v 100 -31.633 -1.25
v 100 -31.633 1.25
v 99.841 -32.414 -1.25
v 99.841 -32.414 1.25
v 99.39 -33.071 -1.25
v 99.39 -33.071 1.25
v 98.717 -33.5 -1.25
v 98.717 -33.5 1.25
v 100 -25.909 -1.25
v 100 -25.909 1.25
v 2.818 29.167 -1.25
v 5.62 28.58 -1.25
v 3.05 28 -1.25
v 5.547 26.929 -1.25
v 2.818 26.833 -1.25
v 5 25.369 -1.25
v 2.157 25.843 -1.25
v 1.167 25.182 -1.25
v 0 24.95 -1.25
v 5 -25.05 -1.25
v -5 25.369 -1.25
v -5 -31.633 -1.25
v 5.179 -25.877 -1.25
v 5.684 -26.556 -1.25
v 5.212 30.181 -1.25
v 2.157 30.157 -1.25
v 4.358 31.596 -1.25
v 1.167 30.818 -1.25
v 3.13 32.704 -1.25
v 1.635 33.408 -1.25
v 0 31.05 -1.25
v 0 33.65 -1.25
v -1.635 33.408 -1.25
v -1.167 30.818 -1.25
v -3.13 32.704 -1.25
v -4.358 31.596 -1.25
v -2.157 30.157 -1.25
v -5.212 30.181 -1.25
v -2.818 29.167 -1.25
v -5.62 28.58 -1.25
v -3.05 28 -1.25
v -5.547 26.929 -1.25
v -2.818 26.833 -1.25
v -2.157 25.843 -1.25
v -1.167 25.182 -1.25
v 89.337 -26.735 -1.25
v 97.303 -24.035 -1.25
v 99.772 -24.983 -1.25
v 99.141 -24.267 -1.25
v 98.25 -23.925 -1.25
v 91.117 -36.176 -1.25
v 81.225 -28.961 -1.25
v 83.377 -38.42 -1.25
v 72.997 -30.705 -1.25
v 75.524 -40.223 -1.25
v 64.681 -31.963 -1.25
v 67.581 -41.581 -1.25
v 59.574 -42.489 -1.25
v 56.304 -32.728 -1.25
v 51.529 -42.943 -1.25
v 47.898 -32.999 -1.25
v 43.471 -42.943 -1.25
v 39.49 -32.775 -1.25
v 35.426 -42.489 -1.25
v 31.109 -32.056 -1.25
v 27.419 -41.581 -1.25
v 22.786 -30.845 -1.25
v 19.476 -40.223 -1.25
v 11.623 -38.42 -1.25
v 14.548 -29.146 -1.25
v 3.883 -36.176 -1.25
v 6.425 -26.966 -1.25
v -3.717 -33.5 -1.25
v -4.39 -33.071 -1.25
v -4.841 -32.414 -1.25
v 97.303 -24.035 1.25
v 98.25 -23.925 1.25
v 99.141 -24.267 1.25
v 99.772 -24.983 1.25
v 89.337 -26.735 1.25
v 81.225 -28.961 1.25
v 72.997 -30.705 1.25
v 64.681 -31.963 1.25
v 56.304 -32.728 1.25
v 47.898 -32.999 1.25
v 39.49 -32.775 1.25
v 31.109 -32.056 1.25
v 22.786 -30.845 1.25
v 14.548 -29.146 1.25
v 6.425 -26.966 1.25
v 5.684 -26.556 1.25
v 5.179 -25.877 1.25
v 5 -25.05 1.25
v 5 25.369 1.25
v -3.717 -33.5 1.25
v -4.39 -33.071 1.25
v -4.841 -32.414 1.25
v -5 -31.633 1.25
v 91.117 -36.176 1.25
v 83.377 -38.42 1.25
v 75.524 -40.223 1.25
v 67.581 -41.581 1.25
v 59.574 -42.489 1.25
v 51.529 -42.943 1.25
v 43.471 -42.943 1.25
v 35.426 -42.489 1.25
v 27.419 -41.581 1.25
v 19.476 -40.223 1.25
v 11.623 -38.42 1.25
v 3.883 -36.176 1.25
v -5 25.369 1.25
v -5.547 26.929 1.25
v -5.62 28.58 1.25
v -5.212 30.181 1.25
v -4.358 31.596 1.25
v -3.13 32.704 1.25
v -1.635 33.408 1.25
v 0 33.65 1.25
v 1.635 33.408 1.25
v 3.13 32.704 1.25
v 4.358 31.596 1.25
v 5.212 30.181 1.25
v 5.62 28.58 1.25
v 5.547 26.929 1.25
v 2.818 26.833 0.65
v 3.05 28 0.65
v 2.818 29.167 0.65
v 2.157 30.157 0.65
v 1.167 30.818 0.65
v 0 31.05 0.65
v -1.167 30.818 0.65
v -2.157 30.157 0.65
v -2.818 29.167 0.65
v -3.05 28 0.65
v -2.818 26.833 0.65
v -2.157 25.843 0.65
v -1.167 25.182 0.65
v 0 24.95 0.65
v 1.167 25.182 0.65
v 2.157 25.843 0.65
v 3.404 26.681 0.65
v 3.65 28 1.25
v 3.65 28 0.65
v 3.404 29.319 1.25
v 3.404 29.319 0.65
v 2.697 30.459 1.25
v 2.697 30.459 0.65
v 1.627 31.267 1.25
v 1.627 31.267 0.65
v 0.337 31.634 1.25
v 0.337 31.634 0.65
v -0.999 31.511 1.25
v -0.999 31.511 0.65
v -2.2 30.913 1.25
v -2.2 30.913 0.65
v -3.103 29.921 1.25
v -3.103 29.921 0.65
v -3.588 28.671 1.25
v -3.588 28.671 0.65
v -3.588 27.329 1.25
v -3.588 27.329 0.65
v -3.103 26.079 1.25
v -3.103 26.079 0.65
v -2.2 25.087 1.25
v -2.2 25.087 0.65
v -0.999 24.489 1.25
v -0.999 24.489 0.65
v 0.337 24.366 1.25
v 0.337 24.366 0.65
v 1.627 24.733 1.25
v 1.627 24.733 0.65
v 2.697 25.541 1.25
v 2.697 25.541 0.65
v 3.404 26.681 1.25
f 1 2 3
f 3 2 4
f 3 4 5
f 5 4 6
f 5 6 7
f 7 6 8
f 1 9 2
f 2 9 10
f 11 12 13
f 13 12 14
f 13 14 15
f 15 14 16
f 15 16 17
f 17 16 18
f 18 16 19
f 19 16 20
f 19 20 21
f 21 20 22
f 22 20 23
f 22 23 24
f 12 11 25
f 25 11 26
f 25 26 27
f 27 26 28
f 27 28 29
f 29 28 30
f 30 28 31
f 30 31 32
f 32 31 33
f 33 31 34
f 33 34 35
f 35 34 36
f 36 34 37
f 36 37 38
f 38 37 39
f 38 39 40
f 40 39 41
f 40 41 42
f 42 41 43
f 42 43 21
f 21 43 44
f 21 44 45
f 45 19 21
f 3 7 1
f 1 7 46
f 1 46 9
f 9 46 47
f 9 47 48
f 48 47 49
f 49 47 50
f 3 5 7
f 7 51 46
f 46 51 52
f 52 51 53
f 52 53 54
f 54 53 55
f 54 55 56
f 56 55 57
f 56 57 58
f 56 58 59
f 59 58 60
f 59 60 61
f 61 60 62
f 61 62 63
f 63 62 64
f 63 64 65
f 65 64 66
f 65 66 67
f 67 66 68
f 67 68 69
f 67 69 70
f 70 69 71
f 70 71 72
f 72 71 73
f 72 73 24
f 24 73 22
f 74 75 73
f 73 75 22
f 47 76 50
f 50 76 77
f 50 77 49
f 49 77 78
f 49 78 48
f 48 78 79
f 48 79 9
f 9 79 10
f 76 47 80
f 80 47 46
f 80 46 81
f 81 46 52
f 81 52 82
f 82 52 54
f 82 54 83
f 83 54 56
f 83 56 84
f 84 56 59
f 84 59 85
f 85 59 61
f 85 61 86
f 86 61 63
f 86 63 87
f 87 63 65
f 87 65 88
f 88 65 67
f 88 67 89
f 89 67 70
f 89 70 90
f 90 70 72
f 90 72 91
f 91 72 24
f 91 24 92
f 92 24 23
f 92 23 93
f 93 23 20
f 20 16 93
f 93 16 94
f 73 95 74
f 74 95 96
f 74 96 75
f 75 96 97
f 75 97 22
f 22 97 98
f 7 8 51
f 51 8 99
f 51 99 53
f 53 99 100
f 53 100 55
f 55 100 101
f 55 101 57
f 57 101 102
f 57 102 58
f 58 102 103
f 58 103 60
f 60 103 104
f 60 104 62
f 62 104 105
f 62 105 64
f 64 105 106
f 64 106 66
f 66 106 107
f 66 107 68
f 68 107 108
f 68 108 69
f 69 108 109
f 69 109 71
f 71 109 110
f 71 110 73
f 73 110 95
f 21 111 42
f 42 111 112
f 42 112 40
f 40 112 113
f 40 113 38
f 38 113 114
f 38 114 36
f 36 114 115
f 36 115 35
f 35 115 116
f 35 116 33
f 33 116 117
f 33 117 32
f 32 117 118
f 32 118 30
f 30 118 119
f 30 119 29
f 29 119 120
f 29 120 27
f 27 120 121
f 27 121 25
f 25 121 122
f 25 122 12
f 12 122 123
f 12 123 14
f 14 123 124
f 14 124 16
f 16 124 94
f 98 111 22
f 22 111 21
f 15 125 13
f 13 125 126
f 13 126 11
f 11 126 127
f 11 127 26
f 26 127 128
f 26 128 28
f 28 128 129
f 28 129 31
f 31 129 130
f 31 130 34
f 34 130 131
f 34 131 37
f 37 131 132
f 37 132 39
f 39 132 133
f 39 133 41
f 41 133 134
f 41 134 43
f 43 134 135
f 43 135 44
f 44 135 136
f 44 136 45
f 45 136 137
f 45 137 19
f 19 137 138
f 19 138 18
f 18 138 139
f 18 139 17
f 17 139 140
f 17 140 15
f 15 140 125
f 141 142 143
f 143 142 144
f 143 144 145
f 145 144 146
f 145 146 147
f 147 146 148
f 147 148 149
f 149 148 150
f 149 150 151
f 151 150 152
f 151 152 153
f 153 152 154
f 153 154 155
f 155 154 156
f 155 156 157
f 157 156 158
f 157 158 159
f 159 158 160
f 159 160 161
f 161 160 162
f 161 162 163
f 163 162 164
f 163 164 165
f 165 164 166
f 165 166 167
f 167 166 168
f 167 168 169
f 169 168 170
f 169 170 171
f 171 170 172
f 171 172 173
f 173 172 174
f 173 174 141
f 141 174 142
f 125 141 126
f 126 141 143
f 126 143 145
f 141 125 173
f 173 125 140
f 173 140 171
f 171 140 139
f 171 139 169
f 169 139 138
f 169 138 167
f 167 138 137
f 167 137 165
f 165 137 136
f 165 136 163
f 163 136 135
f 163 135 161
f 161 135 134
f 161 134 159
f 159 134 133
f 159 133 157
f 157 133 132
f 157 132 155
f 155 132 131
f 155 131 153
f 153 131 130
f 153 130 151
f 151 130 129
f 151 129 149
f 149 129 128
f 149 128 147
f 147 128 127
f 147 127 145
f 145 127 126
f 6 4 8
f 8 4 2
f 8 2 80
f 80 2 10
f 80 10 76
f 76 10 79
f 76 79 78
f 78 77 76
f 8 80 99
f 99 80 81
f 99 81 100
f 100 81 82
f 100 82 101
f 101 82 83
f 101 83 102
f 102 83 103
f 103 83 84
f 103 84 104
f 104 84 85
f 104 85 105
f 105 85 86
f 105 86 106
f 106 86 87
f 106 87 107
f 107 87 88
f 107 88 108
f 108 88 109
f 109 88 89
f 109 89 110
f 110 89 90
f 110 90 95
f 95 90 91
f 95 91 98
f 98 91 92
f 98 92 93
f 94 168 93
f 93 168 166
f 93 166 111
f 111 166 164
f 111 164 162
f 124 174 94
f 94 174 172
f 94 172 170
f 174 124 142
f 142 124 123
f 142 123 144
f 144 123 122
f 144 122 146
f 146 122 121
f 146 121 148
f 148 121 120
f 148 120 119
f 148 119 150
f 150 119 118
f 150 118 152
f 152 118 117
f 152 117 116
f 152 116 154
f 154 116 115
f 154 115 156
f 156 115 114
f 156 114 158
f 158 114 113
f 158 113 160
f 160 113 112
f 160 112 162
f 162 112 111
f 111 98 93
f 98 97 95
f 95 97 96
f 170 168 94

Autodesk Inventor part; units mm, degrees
ref_plane "YZ Plane" through (0, 0, 0) normal (1, 0, 0) x (0, 1, 0)
ref_plane "XZ Plane" through (0, 0, 0) normal (0, 1, 0) x (-1, 0, 0)
ref_plane "XY Plane" through (0, 0, 0) normal (0, 0, 1) x (1, 0, 0)
sketch "スケッチ1" plane through (0, 0, 0) normal (0, 0, 1) x (1, 0, 0)
  line L0 (-5, -33) -> (5, -33)
  line L1 (5, -33) -> (5, 33)
  line L2 (5, 33) -> (-5, 33)
  line L3 (-5, 33) -> (-5, -33)
  line L4 (-5, -33) -> (5, 33) construction
  line L5 (5, -33) -> (-5, 33) construction
  line L6 (-5, -33) -> (100, -33)
  line L7 (100, -33) -> (100, -23)
  line L8 (100, -23) -> (-5, -23)
  line L9 (-5, -23) -> (-5, -33)
  line L10 (47.5, -33) -> (47.5, -43)
  arc A0 (-5, -23) -> (100, -23) centre (47.5, 109.8125) ccw
  arc A1 (-5, -33) -> (100, -33) centre (47.5, 99.8125) ccw
  point P0 (0, 0)
  point P1 (5, -26.5296)
  point P2 (5, -23)
  dimension "d0" = 10
  dimension "d1" = 66
  dimension "d2" = 105
  dimension "d3" = 10
  dimension "d4" = 10
extrude "押し出し1" add sketch "スケッチ1" along normal mid plane 2.5 contours L3 A0 L1 L0 | L0 L6 L10 A1 | L1 A0 L6 | L3 L2 L1 L8 | L8 L1 A0 | L10 L6 A1 | A0 L7 L6 picked at (-0.5654, -23.4196)
sketch "スケッチ2" plane through (0, 0, 1.25) normal (0, 0, 1) x (1, 0, 0)
  line L0 (5, 33) -> (-5, 33) projected
  line L1 (5, -26.5296) -> (5, 33) projected
  circle A0 centre (0, 28) radius 3.05
  circle A1 centre (0, 28) radius 3.65
  point P0 (0, 0)
  dimension "d7" = 5
  dimension "d8" = 5
  dimension "d9" = 6.1
  dimension "d10" = 7.3
extrude "押し出し2" cut sketch "スケッチ2" against normal blind 0.6 contours A0 | A1
sketch "スケッチ3" plane through (0, 28, 0.65) normal (0, 0, 1) x (1, 0, 0)
  circle A0 centre (0, 0) radius 3.05
  point P0 (0, -28)
  dimension "d13" = 6.1
extrude "押し出し3" cut sketch "スケッチ3" against normal blind 1.9
sketch "スケッチ6" plane through (0, 0, 1.25) normal (0, 0, 1) x (1, 0, 0)
  circle A0 centre (0, 28) radius 3.65 projected
  line L0 (-5, 33) -> (-5, -33) projected
  arc A1 (-5, -33) -> (100, -33) centre (47.5, 99.8125) ccw projected
  line L1 (100, -33) -> (100, -23) projected
  arc A2 (5, -26.5296) -> (100, -23) centre (47.5, 109.8125) ccw projected
  line L2 (5, -26.5296) -> (5, 33) projected
  line L3 (5, 33) -> (-5, 33) projected
  circle A3 centre (0, 28) radius 5.65
  point P0 (0, 0)
  point P1 (-5, 25.3689)
  point P2 (-5, 30.6311)
  point P3 (-2.6311, 33)
  point P4 (2.6311, 33)
  point P5 (5, 30.6311)
  point P6 (5, 25.3689)
  dimension "d18" = 11.3
extrude "押し出し5" add sketch "スケッチ6" against normal blind 2.5 contours L0 A3 | A3 L3 | L2 A3
sketch "スケッチ7" plane through (0, 0, 1.25) normal (0, 0, 1) x (1, 0, 0)
  circle A0 centre (0, 28) radius 3.65 projected
  line L0 (-5, 33) -> (-5, 30.6311) projected
  arc A1 (-5, 30.6311) -> (-5, 25.3689) centre (0, 28) ccw projected
  line L1 (-5, 25.3689) -> (-5, -33) projected
  arc A2 (-5, -33) -> (100, -33) centre (47.5, 99.8125) ccw projected
  line L2 (100, -33) -> (100, -23) projected
  arc A3 (5, -26.5296) -> (100, -23) centre (47.5, 109.8125) ccw projected
  line L3 (5, -26.5296) -> (5, 25.3689) projected
  arc A4 (5, 25.3689) -> (5, 30.6311) centre (0, 28) ccw projected
  line L4 (5, 30.6311) -> (5, 33) projected
  line L5 (5, 33) -> (2.6311, 33) projected
  arc A5 (2.6311, 33) -> (-2.6311, 33) centre (0, 28) ccw projected
  line L6 (-2.6311, 33) -> (-5, 33) projected
  circle A6 centre (0, 28) radius 5.65
  point P0 (0, 0)
  point P1 (-2.6311, 33)
  point P2 (2.6311, 33)
extrude "押し出し6" cut sketch "スケッチ7" against normal blind 2.5 contours L6 A6 L0 | L5 L4 A6
fillet "フィレット1" radius 2 4 edges at (-5, -33, 0) (5, -26.5296, 0) (100, -23, 0) (100, -33, 0)
properties part number "指_小"
